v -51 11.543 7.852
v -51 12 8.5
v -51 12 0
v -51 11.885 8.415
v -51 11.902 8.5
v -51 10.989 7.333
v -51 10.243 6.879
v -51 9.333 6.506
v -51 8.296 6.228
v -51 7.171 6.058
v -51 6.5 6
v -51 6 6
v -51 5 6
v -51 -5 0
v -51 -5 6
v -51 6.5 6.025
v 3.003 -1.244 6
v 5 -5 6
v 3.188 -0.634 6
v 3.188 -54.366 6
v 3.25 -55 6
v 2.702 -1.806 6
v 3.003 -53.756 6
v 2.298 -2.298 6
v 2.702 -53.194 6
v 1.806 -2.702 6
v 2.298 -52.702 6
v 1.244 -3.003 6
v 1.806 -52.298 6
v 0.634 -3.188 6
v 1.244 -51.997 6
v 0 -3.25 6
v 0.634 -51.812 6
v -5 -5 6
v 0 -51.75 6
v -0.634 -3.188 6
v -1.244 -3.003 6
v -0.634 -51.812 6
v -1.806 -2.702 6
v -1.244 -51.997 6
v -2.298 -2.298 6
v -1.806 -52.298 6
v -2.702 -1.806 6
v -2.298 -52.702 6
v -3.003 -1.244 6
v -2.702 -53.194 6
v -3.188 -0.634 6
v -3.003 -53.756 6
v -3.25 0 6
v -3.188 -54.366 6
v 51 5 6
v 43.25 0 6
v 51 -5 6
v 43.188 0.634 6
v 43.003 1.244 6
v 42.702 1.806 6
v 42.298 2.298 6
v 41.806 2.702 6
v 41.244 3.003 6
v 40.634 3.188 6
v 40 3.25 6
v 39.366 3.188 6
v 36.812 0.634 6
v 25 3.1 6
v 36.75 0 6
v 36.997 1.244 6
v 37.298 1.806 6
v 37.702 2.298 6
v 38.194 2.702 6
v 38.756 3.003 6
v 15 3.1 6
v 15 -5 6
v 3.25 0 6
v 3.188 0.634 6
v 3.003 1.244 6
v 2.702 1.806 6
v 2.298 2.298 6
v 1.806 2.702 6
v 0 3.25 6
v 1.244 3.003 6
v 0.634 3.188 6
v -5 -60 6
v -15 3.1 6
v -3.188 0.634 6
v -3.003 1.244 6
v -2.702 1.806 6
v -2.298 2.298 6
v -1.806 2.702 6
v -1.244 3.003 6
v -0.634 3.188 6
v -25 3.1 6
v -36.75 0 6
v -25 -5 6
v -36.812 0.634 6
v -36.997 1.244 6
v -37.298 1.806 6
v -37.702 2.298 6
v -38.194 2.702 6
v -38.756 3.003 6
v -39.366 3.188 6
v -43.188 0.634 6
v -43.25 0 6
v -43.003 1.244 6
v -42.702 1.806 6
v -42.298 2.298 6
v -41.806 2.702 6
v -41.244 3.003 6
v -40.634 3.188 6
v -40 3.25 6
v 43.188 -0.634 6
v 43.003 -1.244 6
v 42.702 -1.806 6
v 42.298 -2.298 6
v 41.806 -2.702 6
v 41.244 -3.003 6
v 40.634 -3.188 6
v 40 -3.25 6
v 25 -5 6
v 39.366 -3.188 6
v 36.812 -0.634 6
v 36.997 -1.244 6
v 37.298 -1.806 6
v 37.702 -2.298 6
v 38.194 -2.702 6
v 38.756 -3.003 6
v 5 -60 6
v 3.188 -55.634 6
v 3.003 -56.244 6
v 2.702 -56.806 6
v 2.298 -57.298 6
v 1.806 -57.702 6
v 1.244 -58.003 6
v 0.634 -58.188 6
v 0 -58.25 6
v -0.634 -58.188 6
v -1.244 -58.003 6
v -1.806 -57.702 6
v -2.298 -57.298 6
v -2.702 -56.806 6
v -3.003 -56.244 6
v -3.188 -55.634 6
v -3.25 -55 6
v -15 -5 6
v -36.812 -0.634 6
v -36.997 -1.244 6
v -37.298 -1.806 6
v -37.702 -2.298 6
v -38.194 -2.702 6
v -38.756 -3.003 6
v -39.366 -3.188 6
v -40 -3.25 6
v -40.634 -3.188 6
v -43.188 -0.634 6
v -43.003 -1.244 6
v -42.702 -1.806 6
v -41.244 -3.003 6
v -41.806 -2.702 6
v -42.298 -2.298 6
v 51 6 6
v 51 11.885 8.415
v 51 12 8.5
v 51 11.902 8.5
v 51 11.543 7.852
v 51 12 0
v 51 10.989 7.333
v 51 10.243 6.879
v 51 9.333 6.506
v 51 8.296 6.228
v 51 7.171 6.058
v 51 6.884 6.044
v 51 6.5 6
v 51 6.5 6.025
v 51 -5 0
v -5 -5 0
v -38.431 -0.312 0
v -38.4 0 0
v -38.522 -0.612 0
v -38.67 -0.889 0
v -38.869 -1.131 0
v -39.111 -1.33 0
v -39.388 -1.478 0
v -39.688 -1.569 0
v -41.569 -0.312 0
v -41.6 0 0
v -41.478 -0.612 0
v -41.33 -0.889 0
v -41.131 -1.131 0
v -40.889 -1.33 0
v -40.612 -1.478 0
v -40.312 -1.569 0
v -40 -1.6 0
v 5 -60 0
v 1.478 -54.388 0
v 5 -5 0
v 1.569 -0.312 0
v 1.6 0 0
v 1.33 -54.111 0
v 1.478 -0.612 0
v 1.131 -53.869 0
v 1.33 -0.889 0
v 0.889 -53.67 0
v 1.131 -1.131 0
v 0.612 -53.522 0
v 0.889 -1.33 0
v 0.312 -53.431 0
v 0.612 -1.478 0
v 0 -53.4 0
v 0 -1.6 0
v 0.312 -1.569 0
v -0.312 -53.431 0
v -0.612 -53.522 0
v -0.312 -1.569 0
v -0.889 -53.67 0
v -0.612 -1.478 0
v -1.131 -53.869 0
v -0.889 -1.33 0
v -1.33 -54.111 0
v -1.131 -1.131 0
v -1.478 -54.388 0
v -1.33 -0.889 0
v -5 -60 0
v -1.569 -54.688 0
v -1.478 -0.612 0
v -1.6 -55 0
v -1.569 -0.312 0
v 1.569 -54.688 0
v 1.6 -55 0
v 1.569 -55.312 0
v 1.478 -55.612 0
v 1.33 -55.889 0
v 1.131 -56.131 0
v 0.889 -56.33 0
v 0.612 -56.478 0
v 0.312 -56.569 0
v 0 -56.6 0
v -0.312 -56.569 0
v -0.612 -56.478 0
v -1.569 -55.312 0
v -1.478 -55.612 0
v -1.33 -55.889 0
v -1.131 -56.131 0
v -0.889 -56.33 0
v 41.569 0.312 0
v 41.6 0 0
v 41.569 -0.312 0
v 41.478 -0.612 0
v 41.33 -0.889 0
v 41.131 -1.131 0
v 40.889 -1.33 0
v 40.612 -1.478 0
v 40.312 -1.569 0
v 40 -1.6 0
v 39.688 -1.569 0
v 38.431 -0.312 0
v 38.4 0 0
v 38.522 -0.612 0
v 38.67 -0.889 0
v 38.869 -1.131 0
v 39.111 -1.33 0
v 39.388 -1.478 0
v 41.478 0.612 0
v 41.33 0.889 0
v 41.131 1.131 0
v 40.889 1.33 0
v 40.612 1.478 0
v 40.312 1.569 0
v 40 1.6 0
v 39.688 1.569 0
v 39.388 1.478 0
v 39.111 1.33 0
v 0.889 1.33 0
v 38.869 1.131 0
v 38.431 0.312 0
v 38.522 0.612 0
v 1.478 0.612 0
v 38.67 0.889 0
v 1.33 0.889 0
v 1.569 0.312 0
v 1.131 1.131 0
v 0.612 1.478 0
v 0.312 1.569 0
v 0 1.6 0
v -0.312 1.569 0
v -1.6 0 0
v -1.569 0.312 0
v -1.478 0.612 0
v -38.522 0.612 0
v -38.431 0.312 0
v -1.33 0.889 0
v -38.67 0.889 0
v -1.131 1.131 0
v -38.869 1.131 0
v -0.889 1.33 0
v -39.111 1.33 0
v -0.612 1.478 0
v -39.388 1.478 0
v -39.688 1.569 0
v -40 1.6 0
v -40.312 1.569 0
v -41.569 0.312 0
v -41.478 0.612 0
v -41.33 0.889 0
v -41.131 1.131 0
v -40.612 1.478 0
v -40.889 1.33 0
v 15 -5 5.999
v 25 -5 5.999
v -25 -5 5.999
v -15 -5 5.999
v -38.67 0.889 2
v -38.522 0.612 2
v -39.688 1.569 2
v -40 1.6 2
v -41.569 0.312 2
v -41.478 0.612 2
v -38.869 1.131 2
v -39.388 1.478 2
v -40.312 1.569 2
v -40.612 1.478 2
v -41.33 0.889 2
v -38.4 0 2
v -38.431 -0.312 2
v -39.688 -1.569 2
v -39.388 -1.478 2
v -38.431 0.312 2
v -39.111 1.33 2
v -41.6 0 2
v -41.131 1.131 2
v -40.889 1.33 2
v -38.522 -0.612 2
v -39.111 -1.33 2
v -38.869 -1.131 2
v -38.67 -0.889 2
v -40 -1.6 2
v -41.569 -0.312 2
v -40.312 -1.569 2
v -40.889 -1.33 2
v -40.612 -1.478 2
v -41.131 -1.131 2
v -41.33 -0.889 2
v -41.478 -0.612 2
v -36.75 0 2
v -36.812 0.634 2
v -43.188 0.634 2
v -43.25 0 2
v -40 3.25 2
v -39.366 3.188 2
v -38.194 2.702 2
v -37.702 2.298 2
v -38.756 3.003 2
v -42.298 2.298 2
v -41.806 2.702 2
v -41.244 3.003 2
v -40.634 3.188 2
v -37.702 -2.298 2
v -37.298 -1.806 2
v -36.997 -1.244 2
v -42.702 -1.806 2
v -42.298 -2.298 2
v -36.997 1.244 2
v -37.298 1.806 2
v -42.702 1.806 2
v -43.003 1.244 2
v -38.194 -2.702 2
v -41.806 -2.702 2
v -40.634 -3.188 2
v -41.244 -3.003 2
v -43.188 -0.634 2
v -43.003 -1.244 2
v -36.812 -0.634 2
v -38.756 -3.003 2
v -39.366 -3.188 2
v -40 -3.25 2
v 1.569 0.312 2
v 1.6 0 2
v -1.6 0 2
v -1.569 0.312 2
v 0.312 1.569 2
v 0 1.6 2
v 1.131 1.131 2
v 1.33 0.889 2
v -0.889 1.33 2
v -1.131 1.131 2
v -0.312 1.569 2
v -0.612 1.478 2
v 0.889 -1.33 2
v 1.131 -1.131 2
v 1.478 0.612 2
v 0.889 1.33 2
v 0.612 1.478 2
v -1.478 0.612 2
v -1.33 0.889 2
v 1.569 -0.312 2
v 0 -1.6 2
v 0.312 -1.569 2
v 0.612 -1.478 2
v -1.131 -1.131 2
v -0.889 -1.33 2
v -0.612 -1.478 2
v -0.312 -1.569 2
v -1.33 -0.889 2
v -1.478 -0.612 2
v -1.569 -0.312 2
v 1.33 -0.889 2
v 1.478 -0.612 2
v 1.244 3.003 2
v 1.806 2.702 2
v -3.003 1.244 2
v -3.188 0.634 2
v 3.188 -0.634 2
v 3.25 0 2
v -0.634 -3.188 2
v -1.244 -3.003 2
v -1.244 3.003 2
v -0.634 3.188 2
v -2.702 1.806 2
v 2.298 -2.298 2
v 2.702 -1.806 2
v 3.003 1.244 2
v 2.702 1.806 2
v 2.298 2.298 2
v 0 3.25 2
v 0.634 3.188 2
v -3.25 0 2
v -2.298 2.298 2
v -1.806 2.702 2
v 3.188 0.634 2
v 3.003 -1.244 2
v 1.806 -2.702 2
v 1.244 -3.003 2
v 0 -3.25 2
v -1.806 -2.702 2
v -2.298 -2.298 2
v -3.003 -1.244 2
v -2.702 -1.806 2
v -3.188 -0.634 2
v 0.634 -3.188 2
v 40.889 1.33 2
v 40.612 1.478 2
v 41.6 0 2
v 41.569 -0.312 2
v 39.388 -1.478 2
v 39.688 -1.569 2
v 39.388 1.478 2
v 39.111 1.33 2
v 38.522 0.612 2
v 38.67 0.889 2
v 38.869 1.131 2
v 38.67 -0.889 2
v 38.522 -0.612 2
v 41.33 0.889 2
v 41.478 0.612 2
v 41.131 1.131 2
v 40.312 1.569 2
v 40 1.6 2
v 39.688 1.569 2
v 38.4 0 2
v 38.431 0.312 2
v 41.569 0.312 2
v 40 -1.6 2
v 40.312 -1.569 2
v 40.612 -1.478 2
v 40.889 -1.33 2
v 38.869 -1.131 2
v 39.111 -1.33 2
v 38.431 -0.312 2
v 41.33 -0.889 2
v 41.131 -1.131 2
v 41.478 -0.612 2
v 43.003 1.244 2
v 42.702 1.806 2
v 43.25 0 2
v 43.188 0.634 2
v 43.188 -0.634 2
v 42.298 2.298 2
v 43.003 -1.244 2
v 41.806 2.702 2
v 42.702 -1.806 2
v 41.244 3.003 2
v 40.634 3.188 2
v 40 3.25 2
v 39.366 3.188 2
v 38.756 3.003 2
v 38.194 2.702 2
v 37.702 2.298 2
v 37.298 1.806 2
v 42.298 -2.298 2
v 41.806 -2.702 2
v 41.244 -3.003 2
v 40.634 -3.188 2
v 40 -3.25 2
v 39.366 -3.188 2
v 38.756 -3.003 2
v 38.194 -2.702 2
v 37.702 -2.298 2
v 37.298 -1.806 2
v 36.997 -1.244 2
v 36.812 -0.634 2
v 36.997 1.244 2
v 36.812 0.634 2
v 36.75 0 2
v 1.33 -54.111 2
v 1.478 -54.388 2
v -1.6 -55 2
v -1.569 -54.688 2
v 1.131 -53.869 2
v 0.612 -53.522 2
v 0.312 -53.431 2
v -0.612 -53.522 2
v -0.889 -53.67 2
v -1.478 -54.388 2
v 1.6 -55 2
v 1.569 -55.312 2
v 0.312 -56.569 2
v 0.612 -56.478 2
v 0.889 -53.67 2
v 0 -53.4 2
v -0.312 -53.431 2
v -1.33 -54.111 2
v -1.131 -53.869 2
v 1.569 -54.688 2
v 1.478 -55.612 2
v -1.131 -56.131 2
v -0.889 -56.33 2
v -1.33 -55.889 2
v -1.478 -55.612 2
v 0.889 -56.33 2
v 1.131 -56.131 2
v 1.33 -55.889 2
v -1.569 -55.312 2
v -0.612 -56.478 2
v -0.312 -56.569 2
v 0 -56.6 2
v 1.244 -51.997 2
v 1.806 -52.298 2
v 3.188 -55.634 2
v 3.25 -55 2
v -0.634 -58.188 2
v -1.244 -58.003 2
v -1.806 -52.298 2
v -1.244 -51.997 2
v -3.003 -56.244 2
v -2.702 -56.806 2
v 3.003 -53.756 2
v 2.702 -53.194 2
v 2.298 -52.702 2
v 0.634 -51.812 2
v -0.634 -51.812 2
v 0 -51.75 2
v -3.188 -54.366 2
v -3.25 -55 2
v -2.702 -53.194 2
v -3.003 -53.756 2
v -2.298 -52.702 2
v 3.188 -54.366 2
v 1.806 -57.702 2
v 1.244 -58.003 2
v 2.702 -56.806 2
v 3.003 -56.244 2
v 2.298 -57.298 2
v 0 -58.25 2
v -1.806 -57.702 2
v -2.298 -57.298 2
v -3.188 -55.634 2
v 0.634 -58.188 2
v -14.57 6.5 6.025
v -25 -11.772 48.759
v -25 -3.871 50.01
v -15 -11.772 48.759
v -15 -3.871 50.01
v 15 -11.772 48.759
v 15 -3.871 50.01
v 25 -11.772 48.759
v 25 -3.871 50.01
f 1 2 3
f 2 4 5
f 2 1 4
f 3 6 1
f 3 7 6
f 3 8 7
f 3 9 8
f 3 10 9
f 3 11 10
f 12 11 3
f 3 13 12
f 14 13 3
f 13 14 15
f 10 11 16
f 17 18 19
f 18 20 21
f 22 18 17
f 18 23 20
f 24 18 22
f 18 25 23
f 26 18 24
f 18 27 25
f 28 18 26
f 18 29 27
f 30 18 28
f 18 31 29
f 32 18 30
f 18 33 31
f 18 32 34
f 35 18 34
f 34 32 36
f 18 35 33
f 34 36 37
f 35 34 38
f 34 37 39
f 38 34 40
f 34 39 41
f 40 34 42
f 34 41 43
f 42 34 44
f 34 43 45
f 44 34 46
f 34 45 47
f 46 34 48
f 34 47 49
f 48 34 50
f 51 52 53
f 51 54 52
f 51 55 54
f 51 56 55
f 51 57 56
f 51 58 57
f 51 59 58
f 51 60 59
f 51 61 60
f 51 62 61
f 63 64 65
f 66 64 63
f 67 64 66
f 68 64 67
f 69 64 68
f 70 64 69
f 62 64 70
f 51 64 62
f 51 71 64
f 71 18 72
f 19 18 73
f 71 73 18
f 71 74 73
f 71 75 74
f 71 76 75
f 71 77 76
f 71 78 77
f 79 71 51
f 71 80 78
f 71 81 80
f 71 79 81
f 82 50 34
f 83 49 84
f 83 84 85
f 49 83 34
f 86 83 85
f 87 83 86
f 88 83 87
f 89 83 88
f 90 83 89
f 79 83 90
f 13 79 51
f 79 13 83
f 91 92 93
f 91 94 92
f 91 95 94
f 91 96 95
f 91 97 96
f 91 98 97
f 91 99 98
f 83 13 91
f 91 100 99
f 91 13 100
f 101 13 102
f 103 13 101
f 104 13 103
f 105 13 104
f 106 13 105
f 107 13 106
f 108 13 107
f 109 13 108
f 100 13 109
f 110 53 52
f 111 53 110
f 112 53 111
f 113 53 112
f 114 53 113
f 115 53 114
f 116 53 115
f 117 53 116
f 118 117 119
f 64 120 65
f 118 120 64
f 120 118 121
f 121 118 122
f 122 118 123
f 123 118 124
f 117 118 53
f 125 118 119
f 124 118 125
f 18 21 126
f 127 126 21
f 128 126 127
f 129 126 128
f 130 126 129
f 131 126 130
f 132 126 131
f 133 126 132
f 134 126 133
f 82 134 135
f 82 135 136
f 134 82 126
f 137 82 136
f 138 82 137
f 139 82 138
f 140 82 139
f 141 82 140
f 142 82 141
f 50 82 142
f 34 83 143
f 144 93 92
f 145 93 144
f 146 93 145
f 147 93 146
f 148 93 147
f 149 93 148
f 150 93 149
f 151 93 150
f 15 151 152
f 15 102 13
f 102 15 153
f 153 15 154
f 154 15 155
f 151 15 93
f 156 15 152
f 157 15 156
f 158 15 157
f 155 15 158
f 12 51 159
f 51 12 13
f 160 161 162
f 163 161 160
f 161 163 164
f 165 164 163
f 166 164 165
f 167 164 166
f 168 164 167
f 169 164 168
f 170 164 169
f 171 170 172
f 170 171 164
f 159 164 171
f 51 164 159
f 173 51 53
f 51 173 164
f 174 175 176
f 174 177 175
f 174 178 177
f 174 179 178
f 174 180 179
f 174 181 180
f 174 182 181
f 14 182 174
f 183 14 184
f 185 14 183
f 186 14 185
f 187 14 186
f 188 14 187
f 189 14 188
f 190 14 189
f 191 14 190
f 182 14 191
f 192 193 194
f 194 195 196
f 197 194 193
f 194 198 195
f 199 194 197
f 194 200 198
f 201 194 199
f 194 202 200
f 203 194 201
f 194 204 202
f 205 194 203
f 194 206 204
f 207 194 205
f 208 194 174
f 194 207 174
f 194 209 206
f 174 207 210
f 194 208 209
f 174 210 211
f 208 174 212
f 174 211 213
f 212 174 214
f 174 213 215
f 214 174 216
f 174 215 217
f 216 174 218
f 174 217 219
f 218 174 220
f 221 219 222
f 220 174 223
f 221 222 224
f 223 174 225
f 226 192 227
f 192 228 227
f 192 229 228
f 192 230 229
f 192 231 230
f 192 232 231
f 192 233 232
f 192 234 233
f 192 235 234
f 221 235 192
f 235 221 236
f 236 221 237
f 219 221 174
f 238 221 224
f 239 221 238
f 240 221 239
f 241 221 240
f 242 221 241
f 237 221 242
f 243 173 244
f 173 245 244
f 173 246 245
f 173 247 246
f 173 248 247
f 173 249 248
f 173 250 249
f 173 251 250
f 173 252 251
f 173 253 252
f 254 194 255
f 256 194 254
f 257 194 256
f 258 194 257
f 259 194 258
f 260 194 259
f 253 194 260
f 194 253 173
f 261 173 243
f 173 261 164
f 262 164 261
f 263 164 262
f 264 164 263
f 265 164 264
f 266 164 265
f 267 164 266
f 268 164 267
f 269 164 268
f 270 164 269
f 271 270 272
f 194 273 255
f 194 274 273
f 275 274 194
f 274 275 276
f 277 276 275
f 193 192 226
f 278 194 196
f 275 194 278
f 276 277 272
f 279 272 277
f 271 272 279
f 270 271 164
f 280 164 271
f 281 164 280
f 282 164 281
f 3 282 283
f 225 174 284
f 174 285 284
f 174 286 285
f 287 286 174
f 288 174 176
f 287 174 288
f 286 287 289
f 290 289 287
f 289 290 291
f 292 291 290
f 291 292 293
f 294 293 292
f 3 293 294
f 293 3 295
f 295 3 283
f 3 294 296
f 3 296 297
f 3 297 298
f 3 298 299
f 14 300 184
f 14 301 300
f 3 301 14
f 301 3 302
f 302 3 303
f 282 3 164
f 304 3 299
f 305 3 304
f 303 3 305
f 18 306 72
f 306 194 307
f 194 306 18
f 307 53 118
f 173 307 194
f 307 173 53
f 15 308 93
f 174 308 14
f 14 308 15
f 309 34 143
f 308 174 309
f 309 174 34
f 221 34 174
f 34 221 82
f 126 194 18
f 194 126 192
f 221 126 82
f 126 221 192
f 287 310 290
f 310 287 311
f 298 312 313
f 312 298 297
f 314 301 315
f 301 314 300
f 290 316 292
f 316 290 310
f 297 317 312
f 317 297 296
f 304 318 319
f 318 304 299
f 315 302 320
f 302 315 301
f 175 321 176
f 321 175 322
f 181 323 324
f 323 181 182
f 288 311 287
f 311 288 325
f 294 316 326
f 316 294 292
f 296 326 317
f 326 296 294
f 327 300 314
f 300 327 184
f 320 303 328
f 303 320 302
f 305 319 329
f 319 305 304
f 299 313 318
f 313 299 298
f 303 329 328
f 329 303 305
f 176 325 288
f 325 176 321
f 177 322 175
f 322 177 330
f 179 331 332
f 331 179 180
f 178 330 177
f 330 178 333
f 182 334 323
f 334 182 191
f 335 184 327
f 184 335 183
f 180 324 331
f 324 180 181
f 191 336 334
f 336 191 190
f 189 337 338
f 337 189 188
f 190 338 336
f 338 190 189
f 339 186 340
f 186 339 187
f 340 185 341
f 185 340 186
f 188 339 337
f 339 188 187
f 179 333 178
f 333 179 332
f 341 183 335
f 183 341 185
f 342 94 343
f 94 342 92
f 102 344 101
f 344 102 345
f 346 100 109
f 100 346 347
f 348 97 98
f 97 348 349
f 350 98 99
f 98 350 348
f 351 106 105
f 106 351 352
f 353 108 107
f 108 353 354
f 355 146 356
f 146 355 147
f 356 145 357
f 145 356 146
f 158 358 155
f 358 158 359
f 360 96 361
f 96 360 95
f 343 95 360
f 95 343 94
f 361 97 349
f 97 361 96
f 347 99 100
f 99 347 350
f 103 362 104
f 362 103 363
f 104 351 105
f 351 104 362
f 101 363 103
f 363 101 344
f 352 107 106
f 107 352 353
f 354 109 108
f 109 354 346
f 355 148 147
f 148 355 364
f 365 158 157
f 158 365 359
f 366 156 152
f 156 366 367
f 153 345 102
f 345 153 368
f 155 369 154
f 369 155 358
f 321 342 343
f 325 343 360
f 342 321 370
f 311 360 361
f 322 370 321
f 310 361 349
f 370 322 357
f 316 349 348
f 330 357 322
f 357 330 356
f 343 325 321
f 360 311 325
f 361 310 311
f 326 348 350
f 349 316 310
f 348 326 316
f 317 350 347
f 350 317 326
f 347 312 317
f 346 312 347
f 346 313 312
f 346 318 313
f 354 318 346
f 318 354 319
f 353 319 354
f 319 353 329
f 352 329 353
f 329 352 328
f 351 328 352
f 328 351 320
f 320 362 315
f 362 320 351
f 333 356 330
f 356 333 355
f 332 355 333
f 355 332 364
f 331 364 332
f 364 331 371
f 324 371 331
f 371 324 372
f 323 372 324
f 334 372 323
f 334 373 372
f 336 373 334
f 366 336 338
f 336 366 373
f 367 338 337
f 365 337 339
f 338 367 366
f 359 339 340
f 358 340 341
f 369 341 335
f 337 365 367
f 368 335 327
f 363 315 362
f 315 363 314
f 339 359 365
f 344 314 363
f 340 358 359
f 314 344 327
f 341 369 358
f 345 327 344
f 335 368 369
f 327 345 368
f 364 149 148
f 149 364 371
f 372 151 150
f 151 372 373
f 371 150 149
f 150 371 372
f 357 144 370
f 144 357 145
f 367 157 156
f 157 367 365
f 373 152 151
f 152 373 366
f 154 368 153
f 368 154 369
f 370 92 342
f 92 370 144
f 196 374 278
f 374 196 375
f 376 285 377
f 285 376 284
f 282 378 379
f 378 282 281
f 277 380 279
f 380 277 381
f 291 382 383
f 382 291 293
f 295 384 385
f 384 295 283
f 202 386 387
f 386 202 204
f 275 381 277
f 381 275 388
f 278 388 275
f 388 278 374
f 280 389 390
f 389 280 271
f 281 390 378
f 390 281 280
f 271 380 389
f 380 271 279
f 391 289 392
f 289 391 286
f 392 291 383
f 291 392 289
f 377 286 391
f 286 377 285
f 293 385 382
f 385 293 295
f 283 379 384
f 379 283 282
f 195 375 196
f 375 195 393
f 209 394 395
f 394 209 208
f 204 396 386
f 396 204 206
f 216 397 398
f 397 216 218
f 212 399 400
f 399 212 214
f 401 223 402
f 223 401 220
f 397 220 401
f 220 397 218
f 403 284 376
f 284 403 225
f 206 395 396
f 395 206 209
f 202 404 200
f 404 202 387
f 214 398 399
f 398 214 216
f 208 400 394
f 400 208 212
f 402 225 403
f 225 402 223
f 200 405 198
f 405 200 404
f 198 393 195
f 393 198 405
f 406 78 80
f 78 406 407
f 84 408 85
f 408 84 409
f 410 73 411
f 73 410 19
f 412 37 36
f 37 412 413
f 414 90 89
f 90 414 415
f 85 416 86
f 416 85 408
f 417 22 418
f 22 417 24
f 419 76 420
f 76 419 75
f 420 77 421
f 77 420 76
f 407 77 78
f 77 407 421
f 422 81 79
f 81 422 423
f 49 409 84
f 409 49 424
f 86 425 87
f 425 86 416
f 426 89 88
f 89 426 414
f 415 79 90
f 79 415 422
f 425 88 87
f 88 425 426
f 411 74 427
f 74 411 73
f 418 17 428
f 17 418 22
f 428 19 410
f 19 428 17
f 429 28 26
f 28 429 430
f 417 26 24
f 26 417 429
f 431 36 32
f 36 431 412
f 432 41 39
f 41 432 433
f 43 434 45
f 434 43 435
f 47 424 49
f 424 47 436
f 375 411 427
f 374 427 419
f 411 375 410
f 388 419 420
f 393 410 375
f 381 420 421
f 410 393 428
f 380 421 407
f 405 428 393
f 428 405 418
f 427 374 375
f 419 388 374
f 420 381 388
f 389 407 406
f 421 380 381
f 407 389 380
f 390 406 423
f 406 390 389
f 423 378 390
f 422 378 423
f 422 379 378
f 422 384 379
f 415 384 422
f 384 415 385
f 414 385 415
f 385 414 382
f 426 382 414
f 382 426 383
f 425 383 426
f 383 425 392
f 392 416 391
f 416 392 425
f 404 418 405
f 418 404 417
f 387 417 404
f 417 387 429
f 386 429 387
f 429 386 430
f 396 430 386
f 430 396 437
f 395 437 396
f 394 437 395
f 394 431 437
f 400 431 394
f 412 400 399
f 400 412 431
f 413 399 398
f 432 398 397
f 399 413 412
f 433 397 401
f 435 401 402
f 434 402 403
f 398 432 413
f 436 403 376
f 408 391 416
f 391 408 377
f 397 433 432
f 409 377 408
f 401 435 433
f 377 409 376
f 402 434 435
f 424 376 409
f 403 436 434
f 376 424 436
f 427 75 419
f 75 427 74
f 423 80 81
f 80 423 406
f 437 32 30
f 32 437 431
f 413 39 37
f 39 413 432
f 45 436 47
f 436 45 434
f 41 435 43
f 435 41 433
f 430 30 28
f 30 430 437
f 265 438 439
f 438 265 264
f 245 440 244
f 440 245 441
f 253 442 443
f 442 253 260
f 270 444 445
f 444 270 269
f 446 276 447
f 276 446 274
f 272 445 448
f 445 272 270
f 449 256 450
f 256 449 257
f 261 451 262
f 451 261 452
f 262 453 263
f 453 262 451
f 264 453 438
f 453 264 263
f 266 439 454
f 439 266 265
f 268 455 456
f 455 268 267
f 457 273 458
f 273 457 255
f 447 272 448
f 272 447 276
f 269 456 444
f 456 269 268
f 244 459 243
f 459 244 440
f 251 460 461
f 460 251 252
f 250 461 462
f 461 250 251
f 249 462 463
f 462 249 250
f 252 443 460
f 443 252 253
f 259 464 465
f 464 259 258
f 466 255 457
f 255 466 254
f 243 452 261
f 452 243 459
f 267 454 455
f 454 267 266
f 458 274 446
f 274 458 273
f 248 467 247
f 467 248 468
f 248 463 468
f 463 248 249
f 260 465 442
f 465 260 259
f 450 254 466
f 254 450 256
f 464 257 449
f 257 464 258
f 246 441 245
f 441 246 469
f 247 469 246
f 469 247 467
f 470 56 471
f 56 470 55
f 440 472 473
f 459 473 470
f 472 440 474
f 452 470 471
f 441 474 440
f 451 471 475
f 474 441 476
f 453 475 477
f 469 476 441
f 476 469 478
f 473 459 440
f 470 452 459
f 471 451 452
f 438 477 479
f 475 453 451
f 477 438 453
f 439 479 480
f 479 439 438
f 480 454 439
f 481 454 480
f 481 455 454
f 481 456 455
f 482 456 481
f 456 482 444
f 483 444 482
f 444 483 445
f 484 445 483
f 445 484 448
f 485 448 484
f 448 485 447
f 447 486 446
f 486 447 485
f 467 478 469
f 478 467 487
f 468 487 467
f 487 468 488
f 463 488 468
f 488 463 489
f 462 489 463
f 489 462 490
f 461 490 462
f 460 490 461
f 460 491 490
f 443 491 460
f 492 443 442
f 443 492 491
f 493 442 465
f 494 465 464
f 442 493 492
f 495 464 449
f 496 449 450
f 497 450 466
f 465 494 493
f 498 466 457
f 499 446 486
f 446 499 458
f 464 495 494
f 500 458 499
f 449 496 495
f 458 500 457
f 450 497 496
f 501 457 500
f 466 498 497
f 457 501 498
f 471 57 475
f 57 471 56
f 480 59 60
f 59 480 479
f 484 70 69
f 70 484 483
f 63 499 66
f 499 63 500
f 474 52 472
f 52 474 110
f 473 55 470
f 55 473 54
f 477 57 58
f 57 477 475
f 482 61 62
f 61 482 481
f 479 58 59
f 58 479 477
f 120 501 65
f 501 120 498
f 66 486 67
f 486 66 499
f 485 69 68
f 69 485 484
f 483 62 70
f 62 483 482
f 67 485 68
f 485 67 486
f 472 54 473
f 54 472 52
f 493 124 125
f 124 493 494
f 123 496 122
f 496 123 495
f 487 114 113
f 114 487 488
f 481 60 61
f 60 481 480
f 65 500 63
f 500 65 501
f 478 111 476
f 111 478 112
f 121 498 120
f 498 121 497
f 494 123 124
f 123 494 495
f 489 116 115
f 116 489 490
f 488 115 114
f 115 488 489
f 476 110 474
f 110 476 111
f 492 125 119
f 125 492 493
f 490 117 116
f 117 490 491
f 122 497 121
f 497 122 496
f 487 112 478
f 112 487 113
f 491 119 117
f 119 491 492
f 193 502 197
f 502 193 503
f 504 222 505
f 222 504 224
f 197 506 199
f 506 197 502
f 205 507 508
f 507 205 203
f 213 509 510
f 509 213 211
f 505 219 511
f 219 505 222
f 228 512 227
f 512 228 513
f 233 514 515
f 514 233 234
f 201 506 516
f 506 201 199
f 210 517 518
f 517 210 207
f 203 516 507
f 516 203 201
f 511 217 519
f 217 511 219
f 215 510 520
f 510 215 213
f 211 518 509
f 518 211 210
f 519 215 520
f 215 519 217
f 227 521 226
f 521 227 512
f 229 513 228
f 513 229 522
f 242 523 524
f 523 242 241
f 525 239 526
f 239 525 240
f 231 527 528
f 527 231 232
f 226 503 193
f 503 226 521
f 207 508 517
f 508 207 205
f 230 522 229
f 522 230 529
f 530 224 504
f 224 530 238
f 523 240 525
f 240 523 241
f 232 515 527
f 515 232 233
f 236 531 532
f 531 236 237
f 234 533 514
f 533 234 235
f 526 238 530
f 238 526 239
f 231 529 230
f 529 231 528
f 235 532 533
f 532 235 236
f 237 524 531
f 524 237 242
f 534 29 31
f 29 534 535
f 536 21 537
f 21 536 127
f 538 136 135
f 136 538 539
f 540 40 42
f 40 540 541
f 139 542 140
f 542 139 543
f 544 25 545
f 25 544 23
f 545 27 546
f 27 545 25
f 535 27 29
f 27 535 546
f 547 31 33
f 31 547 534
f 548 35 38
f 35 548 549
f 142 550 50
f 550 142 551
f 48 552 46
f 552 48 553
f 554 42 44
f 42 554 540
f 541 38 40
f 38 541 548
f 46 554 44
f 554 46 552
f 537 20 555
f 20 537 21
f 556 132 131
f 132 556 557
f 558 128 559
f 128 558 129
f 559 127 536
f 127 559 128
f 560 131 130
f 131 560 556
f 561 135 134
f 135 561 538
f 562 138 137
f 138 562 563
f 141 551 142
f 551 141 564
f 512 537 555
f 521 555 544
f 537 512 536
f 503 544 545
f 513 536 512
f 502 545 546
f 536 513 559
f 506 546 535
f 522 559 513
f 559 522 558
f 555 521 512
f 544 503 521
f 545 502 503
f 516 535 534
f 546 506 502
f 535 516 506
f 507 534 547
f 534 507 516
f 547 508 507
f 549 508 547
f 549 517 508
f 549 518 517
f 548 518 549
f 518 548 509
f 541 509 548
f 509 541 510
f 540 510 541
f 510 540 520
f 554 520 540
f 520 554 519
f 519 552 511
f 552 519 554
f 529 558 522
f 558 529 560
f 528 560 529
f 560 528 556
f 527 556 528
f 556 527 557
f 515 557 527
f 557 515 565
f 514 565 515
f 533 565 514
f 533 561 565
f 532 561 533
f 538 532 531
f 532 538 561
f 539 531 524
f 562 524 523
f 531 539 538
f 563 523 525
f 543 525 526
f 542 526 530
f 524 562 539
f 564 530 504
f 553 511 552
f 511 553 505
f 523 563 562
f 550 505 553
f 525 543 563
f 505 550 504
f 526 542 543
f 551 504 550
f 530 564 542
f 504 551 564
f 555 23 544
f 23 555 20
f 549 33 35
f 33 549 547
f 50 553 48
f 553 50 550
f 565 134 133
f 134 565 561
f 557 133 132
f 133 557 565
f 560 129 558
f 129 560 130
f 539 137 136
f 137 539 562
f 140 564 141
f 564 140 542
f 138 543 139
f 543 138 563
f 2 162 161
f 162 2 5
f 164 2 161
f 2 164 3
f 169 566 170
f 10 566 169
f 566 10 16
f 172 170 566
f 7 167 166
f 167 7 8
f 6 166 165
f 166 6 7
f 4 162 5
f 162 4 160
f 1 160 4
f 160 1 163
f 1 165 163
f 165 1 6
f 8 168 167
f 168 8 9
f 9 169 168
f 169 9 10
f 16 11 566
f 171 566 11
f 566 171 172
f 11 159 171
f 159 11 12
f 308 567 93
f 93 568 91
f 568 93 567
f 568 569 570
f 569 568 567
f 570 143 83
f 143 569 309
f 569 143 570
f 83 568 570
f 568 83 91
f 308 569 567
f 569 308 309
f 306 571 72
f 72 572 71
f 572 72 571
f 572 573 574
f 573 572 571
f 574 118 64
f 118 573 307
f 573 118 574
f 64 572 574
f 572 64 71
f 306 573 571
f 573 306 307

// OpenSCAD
translate([0,8,0])
difference() {
    cube_center([102,8,8.5]);
    translate([0,-2,9.0])
    scale([1,1,0.5])
    rotate([0,90,0])
    cylinder(center=true,d=12,h=200,$fn=32);
    translate([0,-5.5,6])
    cube_center([102,8,10]);
}

difference() {
    for(s=[-1:2:1]) {
    translate([s*20,0,0])
    rotate([9.0,0,0])
    cube_center([10,8,50]);
    }
    
    scale([1,1,-1])
    cube_center([100,100,100]);
}


difference() {
    union() {
        cube_center([102,10,6]);
        translate([0,-60/2,0])
        cube_center([10,60,6]);
    }
    for(i=[-40:40:40]) {
        translate([i,0,0])
        cylinder(d=3.2,h=50,$fn=32);
        translate([i,0,2])
        cylinder(d=6.5,h=50,$fn=32);
    }
    translate([0,-55,0])
    cylinder(d=3.2,h=50,$fn=32);
    translate([0,-55,2])
    cylinder(d=6.5,h=50,$fn=32);
}

module cube_center(dims,r=0) {
    if(r==0) {
        translate([-dims[0]/2, -dims[1]/2, 0])
        cube(dims);
    } else {
        
        minkowski() {
            translate([-dims[0]/2+r, -dims[1]/2+r, 0])
            cube([dims[0]-2*r,dims[1]-2*r,dims[2]]);
            cylinder(r=r,h=0.00001,$fn=32);
        }
    }
}
